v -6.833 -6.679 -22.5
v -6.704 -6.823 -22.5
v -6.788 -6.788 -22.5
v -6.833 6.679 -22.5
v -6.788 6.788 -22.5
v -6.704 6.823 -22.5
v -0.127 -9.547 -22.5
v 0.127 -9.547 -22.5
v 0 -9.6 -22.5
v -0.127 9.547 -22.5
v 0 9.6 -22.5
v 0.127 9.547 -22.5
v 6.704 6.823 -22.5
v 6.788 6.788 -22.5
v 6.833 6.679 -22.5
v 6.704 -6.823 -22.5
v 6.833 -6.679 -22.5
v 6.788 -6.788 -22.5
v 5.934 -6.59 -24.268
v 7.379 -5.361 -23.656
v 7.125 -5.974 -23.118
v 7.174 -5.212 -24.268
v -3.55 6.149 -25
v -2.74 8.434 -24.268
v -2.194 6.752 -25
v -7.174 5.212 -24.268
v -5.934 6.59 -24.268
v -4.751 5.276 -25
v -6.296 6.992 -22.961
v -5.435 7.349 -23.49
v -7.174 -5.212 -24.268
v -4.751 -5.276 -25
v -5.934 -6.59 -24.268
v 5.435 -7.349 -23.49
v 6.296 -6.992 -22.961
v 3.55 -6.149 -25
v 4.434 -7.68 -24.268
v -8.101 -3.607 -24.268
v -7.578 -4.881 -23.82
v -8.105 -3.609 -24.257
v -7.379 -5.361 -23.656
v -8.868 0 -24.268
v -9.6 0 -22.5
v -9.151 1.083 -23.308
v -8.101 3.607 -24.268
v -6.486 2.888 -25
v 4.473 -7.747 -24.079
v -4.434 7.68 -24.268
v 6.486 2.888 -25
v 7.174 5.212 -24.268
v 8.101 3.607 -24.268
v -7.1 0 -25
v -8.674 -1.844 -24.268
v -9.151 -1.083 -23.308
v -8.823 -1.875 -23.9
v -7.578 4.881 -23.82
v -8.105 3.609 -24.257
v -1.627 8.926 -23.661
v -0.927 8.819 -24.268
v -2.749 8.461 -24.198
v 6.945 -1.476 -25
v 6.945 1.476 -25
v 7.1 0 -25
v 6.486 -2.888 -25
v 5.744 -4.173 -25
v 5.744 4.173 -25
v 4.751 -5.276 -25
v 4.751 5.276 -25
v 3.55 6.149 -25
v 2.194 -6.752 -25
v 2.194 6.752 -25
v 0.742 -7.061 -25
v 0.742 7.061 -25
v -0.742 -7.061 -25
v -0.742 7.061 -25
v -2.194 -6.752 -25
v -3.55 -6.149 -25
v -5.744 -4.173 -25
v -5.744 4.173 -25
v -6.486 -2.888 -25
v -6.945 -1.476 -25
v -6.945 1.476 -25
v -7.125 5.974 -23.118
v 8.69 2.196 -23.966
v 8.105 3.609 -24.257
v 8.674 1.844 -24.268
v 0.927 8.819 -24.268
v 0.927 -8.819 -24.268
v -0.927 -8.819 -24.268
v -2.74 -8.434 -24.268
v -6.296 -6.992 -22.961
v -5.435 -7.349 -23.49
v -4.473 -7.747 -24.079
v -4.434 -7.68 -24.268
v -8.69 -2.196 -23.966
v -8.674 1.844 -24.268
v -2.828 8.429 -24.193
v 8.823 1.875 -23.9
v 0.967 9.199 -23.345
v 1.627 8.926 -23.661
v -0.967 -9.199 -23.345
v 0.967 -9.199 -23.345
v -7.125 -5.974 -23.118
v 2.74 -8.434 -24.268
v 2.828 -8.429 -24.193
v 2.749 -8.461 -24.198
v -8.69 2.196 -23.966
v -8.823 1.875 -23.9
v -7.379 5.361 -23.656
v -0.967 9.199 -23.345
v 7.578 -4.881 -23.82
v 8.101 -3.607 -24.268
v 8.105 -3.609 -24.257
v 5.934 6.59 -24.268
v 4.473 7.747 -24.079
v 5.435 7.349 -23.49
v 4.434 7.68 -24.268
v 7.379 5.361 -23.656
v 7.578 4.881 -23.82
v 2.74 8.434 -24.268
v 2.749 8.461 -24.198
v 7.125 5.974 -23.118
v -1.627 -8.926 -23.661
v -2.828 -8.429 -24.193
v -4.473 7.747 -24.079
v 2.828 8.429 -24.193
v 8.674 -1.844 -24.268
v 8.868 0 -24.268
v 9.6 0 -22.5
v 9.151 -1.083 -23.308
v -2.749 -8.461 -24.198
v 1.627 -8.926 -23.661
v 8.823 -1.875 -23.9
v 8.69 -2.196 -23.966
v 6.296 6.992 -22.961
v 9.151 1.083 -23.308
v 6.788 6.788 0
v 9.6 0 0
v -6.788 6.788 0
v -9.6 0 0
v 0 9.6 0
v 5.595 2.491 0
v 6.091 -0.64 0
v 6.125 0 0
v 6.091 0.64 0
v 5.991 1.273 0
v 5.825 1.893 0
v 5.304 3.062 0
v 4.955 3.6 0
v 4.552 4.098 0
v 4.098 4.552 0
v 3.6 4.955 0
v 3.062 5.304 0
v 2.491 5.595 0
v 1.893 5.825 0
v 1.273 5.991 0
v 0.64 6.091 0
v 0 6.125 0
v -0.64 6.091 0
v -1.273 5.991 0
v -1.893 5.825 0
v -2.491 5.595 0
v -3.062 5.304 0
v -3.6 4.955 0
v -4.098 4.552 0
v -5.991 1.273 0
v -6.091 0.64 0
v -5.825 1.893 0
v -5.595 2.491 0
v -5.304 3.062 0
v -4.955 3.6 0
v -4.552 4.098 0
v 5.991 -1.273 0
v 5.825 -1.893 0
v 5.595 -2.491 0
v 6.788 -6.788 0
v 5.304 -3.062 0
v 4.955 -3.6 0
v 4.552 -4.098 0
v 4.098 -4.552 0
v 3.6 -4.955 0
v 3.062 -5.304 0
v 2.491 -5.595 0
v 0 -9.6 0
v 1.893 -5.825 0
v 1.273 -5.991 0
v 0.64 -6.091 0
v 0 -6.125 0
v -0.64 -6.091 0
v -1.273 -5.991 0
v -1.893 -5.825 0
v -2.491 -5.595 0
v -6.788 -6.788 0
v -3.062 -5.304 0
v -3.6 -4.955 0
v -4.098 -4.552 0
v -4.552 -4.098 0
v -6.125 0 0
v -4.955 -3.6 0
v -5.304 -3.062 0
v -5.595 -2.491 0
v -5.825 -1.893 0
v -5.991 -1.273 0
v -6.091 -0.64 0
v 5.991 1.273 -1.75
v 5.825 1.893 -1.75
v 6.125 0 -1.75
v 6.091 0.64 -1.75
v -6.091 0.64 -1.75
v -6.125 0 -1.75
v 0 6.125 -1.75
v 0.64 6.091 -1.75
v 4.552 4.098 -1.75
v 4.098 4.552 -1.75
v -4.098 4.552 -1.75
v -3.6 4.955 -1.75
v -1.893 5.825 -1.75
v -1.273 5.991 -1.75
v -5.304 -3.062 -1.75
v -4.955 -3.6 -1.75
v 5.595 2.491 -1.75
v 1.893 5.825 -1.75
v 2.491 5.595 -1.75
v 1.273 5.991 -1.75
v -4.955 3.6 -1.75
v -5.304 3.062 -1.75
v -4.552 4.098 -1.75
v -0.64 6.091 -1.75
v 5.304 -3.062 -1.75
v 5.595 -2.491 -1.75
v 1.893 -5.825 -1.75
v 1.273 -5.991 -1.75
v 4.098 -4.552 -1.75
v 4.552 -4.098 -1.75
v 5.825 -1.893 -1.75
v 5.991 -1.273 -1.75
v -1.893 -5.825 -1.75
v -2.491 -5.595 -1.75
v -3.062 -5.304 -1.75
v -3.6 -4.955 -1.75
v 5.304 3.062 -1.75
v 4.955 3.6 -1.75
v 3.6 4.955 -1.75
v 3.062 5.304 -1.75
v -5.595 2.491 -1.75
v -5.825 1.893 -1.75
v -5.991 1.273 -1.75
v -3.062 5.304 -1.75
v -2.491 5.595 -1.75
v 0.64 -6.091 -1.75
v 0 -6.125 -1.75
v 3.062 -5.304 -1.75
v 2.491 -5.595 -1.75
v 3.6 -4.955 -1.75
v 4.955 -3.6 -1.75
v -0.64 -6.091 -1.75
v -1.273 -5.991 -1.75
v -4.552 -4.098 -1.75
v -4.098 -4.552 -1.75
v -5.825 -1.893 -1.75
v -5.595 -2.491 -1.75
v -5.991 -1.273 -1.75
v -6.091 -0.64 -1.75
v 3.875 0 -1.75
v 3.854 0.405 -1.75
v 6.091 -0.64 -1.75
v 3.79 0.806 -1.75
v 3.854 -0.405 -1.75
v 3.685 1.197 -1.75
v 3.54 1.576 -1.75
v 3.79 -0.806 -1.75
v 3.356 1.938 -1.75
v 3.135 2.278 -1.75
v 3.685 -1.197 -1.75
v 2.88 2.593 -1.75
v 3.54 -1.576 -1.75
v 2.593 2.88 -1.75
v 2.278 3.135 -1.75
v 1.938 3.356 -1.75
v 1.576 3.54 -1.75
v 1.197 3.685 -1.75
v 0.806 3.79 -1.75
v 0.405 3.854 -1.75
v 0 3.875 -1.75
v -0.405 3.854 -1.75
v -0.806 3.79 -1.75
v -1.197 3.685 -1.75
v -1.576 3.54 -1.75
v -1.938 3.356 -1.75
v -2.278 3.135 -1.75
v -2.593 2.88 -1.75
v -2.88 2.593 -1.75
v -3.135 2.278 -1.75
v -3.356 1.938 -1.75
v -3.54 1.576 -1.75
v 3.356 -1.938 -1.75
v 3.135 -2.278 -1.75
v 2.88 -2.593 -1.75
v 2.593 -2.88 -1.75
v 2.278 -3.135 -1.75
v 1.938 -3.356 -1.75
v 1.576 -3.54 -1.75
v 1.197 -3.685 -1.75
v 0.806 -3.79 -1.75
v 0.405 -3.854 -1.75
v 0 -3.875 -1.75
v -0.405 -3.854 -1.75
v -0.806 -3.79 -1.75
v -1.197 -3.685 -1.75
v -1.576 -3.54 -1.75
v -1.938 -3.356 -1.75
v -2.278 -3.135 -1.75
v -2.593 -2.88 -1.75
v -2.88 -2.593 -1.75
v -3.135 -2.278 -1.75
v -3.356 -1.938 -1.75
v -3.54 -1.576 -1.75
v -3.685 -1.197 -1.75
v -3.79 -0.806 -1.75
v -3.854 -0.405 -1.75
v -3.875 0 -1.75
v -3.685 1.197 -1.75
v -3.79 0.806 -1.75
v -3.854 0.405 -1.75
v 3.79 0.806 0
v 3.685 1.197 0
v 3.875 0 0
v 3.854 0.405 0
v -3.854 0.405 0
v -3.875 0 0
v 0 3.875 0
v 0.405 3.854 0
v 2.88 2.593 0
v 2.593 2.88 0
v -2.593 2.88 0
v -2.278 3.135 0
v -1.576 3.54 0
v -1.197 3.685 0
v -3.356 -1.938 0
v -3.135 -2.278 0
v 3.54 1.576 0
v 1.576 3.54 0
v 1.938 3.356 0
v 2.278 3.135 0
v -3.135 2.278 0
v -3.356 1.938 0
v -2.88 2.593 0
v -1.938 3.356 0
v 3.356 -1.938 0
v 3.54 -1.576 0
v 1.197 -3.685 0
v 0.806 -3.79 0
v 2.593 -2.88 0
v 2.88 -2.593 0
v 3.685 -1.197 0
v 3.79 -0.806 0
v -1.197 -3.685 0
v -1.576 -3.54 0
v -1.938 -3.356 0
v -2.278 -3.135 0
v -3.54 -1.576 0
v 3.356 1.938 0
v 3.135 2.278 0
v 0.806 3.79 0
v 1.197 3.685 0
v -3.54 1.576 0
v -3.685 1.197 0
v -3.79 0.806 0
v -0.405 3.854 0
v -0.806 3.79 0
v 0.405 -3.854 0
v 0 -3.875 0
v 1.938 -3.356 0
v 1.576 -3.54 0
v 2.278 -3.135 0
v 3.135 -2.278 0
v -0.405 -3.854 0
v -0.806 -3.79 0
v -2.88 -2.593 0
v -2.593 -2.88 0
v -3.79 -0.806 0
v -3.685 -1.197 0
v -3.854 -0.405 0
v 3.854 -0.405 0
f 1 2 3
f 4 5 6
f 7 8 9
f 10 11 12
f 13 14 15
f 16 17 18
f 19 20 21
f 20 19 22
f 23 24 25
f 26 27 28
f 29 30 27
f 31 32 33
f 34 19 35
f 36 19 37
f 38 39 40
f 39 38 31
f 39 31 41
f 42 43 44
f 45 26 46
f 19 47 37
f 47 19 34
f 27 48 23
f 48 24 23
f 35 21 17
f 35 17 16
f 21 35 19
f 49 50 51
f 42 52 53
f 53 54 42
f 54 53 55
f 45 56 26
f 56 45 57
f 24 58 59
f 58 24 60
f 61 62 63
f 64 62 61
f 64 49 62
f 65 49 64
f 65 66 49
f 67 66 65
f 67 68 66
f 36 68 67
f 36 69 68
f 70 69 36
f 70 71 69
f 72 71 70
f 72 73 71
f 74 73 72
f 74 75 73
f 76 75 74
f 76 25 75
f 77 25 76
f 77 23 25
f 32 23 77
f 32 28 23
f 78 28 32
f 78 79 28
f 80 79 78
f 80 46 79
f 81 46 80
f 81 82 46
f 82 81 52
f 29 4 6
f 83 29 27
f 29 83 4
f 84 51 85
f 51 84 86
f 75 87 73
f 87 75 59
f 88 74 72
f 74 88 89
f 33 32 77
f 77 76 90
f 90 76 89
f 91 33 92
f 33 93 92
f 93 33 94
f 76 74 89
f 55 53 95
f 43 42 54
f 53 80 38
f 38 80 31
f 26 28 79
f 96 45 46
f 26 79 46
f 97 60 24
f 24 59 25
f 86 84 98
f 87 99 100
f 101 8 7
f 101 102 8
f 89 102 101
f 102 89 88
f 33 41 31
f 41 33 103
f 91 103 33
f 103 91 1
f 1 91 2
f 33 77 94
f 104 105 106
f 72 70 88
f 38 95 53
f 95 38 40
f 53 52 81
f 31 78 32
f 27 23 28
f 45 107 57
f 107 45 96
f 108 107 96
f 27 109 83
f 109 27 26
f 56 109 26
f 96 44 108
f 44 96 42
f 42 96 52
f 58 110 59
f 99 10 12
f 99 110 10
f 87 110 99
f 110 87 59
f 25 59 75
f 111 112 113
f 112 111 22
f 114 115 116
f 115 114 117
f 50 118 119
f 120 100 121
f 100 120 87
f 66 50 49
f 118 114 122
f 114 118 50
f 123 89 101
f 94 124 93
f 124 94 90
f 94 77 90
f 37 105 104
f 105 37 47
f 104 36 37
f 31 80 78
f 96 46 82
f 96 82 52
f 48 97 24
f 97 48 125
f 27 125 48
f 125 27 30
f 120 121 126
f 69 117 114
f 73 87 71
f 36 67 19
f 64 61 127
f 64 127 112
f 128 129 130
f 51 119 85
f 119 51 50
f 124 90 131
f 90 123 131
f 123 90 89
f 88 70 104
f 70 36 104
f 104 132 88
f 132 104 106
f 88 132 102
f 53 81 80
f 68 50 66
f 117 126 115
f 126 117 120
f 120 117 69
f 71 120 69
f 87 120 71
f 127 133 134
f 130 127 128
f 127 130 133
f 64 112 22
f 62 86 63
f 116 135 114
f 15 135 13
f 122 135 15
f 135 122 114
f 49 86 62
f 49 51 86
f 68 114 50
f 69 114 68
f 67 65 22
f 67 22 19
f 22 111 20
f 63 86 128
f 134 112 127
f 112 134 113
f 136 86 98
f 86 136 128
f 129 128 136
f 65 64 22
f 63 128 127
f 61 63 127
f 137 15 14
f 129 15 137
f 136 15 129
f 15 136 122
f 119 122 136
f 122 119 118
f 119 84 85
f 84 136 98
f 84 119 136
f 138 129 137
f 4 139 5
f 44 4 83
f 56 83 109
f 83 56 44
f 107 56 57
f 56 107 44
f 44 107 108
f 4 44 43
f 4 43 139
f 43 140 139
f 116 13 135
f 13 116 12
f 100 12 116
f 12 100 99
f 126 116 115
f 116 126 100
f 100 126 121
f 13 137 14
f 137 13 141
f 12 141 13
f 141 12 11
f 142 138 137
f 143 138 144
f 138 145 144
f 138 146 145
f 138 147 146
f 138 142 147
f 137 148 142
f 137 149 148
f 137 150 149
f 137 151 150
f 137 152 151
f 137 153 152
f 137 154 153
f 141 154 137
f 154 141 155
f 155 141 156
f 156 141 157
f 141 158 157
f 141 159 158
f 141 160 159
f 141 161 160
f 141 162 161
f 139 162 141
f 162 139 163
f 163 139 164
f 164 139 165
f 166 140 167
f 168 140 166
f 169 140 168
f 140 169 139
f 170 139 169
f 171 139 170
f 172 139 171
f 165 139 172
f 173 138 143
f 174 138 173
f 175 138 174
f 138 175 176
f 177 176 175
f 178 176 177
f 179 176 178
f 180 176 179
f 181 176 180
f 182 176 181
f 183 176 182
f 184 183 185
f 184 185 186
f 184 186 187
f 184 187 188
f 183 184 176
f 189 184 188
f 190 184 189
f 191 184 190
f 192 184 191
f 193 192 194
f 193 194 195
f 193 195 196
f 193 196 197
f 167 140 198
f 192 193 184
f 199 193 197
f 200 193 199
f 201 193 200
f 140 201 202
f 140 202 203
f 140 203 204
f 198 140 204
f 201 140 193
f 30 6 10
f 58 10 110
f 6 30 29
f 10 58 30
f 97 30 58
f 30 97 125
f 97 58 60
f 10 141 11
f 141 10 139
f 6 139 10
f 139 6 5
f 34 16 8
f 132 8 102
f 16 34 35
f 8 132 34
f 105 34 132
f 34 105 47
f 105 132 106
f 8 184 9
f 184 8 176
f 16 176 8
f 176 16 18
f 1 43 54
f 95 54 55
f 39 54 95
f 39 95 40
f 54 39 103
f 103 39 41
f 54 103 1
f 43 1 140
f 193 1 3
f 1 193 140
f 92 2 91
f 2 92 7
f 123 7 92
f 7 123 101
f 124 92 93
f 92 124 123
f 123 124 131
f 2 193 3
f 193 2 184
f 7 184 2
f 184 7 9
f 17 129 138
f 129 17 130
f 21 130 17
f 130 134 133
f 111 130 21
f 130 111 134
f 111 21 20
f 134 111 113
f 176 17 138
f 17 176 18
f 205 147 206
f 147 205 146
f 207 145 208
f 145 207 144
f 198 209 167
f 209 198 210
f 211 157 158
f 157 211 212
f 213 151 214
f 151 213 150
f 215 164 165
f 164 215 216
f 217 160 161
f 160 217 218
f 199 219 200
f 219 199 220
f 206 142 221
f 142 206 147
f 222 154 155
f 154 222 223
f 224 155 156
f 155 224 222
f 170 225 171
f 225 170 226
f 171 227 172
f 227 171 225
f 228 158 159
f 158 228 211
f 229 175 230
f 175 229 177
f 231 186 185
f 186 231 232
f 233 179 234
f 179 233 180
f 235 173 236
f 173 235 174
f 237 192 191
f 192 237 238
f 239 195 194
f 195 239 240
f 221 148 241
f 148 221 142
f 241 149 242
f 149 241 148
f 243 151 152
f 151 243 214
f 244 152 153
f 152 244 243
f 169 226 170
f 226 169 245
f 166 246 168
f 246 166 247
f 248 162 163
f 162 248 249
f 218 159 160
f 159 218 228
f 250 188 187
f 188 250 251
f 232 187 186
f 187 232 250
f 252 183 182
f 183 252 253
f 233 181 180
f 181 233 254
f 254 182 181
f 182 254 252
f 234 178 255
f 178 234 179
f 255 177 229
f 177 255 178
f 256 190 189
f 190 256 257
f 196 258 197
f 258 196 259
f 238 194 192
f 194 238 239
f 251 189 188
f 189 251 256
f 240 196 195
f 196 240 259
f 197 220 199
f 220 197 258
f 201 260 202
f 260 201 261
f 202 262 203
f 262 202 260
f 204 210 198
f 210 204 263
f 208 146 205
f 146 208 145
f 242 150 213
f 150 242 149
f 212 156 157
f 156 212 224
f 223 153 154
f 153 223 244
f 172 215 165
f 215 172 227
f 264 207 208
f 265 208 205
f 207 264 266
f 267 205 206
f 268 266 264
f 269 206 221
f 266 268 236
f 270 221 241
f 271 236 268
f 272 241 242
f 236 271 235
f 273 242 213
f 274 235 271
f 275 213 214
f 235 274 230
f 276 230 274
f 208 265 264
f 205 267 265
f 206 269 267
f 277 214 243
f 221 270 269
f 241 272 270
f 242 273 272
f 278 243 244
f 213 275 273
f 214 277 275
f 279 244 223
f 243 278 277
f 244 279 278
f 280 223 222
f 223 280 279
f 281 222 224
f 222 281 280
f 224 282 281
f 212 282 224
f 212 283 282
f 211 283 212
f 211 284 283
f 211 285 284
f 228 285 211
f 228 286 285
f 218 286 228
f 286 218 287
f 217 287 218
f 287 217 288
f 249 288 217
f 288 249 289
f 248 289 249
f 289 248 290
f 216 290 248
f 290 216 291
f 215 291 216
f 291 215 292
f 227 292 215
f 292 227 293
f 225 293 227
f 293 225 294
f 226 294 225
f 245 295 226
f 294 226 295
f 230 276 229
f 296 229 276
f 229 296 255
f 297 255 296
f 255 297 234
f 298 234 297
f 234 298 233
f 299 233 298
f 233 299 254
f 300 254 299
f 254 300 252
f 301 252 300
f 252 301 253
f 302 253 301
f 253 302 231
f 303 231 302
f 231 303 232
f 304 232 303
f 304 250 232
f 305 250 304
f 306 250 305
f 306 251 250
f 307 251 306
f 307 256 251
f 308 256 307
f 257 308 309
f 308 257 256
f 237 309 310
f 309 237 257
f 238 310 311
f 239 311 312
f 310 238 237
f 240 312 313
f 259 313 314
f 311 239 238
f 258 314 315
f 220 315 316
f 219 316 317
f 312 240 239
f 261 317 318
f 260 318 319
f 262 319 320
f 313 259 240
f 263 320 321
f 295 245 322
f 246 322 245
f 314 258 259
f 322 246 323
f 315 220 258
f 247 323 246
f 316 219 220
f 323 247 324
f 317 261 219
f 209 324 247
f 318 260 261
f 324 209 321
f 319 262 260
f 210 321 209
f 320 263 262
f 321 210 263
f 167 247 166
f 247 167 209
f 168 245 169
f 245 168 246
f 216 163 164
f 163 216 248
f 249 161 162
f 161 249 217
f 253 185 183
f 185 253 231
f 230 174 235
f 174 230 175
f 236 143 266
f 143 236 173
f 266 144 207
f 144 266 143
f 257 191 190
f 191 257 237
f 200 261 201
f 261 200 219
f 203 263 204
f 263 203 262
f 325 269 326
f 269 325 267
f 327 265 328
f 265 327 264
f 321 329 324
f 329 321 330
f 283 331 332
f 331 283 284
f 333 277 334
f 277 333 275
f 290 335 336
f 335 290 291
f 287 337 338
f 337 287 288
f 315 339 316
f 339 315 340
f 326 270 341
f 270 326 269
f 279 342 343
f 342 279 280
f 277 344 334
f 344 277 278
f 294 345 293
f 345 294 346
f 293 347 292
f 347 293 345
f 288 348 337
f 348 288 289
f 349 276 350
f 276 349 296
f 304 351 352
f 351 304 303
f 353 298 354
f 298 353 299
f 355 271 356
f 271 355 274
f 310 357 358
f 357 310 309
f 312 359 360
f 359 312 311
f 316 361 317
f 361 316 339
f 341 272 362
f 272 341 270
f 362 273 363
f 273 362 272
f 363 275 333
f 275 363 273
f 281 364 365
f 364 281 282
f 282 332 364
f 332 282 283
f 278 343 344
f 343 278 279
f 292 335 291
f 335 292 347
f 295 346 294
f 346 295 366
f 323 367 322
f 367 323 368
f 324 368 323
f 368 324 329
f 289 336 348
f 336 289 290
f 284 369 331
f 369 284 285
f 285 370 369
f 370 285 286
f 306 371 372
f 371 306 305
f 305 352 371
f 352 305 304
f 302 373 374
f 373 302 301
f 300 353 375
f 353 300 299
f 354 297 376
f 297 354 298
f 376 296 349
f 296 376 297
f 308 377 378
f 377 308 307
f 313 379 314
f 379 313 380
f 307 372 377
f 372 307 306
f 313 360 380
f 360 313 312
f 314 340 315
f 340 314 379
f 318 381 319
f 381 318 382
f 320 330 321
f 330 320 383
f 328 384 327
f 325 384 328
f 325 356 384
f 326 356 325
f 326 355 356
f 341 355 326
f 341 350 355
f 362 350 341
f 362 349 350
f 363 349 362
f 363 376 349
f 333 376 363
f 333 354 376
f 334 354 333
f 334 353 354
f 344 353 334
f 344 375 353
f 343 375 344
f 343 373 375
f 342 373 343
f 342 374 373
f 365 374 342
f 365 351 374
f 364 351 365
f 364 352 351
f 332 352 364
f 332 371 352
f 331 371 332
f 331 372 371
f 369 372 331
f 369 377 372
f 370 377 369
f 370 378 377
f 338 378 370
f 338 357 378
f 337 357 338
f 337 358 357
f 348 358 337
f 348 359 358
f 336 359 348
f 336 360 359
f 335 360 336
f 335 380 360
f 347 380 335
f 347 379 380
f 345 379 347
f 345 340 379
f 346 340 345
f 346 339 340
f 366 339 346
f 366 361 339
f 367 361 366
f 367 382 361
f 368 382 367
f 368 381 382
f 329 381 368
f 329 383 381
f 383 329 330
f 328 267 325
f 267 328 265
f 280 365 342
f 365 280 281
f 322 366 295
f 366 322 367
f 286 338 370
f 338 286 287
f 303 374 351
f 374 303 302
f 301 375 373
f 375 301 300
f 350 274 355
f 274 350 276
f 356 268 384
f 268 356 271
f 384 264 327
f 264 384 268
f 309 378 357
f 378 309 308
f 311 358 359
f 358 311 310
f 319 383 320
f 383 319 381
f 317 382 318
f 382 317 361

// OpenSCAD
include <BOSL/constants.scad>
use <BOSL/shapes.scad>
use <BOSL/transforms.scad>
use <BOSL/masks.scad>





bid=8;
bod=12;
bbo=3.5;
heig=bbo/2; 
odiam = bod*1.6;

head=20;
addl=5;
//40mm total height

wiggle = 0.25;


mirror([0,0,1]) tool();

module tool() {  
  difference(){
    color("green") cyl(d=odiam, h=head+addl, align=V_UP, $fn=8); // handle
    color("yellow") up(head+addl) fillet_cylinder_mask(r=(odiam/2), fillet=2.5); // handle cleanup
    color("purple") cyl(d=bod+wiggle, h=heig, align=V_UP, $fn=60); // bearing
  }//difference
    color("pink") cyl(d=bid-wiggle, h=head, align=V_UP, $fn=60); // headroom
}
